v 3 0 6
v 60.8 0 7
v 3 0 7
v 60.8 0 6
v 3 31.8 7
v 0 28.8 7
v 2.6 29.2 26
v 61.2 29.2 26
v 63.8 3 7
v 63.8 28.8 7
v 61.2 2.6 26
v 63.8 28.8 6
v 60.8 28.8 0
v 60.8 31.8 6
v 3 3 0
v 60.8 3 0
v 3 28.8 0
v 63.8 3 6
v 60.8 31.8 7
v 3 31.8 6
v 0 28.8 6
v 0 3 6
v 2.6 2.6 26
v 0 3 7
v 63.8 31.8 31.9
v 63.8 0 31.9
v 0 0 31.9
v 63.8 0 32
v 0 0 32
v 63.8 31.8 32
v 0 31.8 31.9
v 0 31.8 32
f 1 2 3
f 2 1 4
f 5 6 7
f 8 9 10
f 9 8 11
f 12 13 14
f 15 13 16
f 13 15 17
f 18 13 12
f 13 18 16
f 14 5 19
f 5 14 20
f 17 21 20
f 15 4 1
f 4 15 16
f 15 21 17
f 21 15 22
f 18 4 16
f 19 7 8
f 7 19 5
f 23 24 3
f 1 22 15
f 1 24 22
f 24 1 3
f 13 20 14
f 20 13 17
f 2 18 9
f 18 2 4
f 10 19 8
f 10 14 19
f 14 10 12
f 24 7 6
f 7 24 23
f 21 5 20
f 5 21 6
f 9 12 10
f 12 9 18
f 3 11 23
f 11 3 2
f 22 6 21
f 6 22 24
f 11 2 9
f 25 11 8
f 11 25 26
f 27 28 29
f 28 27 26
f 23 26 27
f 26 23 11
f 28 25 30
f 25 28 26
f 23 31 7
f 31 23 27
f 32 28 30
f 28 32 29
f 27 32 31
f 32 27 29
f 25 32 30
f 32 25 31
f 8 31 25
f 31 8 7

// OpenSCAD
a = 0.4; // wall thickness
b = 0.2; // Inset for looseness
c = 6.0; // height of chamfer
d = 3.0; // width of chamfer
e = 3.0; // Gap for pegs
f = 32; // Base unit of width and length

l = 2*f-b; // outside length
w = 1*f-b; // outside width
h = 1*f; // height


hull() {
    translate([d,d,0]) cube([l-2*d,w-2*d,1]);
    translate([e,0,c]) cube([l-2*e,w,1]);
    translate([0,e,c]) cube([l,w-2*e,1]);
    translate([d-a,d-a,h-c-1]) cube([l-2*(d-a),w-2*(d-a),1]);
}
hull() {
    translate([d-a,d-a,h-c]) cube([l-2*(d-a),w-2*(d-a),1]);
    translate([0,0,h-0.1]) cube([l,w,0.1]);
}
